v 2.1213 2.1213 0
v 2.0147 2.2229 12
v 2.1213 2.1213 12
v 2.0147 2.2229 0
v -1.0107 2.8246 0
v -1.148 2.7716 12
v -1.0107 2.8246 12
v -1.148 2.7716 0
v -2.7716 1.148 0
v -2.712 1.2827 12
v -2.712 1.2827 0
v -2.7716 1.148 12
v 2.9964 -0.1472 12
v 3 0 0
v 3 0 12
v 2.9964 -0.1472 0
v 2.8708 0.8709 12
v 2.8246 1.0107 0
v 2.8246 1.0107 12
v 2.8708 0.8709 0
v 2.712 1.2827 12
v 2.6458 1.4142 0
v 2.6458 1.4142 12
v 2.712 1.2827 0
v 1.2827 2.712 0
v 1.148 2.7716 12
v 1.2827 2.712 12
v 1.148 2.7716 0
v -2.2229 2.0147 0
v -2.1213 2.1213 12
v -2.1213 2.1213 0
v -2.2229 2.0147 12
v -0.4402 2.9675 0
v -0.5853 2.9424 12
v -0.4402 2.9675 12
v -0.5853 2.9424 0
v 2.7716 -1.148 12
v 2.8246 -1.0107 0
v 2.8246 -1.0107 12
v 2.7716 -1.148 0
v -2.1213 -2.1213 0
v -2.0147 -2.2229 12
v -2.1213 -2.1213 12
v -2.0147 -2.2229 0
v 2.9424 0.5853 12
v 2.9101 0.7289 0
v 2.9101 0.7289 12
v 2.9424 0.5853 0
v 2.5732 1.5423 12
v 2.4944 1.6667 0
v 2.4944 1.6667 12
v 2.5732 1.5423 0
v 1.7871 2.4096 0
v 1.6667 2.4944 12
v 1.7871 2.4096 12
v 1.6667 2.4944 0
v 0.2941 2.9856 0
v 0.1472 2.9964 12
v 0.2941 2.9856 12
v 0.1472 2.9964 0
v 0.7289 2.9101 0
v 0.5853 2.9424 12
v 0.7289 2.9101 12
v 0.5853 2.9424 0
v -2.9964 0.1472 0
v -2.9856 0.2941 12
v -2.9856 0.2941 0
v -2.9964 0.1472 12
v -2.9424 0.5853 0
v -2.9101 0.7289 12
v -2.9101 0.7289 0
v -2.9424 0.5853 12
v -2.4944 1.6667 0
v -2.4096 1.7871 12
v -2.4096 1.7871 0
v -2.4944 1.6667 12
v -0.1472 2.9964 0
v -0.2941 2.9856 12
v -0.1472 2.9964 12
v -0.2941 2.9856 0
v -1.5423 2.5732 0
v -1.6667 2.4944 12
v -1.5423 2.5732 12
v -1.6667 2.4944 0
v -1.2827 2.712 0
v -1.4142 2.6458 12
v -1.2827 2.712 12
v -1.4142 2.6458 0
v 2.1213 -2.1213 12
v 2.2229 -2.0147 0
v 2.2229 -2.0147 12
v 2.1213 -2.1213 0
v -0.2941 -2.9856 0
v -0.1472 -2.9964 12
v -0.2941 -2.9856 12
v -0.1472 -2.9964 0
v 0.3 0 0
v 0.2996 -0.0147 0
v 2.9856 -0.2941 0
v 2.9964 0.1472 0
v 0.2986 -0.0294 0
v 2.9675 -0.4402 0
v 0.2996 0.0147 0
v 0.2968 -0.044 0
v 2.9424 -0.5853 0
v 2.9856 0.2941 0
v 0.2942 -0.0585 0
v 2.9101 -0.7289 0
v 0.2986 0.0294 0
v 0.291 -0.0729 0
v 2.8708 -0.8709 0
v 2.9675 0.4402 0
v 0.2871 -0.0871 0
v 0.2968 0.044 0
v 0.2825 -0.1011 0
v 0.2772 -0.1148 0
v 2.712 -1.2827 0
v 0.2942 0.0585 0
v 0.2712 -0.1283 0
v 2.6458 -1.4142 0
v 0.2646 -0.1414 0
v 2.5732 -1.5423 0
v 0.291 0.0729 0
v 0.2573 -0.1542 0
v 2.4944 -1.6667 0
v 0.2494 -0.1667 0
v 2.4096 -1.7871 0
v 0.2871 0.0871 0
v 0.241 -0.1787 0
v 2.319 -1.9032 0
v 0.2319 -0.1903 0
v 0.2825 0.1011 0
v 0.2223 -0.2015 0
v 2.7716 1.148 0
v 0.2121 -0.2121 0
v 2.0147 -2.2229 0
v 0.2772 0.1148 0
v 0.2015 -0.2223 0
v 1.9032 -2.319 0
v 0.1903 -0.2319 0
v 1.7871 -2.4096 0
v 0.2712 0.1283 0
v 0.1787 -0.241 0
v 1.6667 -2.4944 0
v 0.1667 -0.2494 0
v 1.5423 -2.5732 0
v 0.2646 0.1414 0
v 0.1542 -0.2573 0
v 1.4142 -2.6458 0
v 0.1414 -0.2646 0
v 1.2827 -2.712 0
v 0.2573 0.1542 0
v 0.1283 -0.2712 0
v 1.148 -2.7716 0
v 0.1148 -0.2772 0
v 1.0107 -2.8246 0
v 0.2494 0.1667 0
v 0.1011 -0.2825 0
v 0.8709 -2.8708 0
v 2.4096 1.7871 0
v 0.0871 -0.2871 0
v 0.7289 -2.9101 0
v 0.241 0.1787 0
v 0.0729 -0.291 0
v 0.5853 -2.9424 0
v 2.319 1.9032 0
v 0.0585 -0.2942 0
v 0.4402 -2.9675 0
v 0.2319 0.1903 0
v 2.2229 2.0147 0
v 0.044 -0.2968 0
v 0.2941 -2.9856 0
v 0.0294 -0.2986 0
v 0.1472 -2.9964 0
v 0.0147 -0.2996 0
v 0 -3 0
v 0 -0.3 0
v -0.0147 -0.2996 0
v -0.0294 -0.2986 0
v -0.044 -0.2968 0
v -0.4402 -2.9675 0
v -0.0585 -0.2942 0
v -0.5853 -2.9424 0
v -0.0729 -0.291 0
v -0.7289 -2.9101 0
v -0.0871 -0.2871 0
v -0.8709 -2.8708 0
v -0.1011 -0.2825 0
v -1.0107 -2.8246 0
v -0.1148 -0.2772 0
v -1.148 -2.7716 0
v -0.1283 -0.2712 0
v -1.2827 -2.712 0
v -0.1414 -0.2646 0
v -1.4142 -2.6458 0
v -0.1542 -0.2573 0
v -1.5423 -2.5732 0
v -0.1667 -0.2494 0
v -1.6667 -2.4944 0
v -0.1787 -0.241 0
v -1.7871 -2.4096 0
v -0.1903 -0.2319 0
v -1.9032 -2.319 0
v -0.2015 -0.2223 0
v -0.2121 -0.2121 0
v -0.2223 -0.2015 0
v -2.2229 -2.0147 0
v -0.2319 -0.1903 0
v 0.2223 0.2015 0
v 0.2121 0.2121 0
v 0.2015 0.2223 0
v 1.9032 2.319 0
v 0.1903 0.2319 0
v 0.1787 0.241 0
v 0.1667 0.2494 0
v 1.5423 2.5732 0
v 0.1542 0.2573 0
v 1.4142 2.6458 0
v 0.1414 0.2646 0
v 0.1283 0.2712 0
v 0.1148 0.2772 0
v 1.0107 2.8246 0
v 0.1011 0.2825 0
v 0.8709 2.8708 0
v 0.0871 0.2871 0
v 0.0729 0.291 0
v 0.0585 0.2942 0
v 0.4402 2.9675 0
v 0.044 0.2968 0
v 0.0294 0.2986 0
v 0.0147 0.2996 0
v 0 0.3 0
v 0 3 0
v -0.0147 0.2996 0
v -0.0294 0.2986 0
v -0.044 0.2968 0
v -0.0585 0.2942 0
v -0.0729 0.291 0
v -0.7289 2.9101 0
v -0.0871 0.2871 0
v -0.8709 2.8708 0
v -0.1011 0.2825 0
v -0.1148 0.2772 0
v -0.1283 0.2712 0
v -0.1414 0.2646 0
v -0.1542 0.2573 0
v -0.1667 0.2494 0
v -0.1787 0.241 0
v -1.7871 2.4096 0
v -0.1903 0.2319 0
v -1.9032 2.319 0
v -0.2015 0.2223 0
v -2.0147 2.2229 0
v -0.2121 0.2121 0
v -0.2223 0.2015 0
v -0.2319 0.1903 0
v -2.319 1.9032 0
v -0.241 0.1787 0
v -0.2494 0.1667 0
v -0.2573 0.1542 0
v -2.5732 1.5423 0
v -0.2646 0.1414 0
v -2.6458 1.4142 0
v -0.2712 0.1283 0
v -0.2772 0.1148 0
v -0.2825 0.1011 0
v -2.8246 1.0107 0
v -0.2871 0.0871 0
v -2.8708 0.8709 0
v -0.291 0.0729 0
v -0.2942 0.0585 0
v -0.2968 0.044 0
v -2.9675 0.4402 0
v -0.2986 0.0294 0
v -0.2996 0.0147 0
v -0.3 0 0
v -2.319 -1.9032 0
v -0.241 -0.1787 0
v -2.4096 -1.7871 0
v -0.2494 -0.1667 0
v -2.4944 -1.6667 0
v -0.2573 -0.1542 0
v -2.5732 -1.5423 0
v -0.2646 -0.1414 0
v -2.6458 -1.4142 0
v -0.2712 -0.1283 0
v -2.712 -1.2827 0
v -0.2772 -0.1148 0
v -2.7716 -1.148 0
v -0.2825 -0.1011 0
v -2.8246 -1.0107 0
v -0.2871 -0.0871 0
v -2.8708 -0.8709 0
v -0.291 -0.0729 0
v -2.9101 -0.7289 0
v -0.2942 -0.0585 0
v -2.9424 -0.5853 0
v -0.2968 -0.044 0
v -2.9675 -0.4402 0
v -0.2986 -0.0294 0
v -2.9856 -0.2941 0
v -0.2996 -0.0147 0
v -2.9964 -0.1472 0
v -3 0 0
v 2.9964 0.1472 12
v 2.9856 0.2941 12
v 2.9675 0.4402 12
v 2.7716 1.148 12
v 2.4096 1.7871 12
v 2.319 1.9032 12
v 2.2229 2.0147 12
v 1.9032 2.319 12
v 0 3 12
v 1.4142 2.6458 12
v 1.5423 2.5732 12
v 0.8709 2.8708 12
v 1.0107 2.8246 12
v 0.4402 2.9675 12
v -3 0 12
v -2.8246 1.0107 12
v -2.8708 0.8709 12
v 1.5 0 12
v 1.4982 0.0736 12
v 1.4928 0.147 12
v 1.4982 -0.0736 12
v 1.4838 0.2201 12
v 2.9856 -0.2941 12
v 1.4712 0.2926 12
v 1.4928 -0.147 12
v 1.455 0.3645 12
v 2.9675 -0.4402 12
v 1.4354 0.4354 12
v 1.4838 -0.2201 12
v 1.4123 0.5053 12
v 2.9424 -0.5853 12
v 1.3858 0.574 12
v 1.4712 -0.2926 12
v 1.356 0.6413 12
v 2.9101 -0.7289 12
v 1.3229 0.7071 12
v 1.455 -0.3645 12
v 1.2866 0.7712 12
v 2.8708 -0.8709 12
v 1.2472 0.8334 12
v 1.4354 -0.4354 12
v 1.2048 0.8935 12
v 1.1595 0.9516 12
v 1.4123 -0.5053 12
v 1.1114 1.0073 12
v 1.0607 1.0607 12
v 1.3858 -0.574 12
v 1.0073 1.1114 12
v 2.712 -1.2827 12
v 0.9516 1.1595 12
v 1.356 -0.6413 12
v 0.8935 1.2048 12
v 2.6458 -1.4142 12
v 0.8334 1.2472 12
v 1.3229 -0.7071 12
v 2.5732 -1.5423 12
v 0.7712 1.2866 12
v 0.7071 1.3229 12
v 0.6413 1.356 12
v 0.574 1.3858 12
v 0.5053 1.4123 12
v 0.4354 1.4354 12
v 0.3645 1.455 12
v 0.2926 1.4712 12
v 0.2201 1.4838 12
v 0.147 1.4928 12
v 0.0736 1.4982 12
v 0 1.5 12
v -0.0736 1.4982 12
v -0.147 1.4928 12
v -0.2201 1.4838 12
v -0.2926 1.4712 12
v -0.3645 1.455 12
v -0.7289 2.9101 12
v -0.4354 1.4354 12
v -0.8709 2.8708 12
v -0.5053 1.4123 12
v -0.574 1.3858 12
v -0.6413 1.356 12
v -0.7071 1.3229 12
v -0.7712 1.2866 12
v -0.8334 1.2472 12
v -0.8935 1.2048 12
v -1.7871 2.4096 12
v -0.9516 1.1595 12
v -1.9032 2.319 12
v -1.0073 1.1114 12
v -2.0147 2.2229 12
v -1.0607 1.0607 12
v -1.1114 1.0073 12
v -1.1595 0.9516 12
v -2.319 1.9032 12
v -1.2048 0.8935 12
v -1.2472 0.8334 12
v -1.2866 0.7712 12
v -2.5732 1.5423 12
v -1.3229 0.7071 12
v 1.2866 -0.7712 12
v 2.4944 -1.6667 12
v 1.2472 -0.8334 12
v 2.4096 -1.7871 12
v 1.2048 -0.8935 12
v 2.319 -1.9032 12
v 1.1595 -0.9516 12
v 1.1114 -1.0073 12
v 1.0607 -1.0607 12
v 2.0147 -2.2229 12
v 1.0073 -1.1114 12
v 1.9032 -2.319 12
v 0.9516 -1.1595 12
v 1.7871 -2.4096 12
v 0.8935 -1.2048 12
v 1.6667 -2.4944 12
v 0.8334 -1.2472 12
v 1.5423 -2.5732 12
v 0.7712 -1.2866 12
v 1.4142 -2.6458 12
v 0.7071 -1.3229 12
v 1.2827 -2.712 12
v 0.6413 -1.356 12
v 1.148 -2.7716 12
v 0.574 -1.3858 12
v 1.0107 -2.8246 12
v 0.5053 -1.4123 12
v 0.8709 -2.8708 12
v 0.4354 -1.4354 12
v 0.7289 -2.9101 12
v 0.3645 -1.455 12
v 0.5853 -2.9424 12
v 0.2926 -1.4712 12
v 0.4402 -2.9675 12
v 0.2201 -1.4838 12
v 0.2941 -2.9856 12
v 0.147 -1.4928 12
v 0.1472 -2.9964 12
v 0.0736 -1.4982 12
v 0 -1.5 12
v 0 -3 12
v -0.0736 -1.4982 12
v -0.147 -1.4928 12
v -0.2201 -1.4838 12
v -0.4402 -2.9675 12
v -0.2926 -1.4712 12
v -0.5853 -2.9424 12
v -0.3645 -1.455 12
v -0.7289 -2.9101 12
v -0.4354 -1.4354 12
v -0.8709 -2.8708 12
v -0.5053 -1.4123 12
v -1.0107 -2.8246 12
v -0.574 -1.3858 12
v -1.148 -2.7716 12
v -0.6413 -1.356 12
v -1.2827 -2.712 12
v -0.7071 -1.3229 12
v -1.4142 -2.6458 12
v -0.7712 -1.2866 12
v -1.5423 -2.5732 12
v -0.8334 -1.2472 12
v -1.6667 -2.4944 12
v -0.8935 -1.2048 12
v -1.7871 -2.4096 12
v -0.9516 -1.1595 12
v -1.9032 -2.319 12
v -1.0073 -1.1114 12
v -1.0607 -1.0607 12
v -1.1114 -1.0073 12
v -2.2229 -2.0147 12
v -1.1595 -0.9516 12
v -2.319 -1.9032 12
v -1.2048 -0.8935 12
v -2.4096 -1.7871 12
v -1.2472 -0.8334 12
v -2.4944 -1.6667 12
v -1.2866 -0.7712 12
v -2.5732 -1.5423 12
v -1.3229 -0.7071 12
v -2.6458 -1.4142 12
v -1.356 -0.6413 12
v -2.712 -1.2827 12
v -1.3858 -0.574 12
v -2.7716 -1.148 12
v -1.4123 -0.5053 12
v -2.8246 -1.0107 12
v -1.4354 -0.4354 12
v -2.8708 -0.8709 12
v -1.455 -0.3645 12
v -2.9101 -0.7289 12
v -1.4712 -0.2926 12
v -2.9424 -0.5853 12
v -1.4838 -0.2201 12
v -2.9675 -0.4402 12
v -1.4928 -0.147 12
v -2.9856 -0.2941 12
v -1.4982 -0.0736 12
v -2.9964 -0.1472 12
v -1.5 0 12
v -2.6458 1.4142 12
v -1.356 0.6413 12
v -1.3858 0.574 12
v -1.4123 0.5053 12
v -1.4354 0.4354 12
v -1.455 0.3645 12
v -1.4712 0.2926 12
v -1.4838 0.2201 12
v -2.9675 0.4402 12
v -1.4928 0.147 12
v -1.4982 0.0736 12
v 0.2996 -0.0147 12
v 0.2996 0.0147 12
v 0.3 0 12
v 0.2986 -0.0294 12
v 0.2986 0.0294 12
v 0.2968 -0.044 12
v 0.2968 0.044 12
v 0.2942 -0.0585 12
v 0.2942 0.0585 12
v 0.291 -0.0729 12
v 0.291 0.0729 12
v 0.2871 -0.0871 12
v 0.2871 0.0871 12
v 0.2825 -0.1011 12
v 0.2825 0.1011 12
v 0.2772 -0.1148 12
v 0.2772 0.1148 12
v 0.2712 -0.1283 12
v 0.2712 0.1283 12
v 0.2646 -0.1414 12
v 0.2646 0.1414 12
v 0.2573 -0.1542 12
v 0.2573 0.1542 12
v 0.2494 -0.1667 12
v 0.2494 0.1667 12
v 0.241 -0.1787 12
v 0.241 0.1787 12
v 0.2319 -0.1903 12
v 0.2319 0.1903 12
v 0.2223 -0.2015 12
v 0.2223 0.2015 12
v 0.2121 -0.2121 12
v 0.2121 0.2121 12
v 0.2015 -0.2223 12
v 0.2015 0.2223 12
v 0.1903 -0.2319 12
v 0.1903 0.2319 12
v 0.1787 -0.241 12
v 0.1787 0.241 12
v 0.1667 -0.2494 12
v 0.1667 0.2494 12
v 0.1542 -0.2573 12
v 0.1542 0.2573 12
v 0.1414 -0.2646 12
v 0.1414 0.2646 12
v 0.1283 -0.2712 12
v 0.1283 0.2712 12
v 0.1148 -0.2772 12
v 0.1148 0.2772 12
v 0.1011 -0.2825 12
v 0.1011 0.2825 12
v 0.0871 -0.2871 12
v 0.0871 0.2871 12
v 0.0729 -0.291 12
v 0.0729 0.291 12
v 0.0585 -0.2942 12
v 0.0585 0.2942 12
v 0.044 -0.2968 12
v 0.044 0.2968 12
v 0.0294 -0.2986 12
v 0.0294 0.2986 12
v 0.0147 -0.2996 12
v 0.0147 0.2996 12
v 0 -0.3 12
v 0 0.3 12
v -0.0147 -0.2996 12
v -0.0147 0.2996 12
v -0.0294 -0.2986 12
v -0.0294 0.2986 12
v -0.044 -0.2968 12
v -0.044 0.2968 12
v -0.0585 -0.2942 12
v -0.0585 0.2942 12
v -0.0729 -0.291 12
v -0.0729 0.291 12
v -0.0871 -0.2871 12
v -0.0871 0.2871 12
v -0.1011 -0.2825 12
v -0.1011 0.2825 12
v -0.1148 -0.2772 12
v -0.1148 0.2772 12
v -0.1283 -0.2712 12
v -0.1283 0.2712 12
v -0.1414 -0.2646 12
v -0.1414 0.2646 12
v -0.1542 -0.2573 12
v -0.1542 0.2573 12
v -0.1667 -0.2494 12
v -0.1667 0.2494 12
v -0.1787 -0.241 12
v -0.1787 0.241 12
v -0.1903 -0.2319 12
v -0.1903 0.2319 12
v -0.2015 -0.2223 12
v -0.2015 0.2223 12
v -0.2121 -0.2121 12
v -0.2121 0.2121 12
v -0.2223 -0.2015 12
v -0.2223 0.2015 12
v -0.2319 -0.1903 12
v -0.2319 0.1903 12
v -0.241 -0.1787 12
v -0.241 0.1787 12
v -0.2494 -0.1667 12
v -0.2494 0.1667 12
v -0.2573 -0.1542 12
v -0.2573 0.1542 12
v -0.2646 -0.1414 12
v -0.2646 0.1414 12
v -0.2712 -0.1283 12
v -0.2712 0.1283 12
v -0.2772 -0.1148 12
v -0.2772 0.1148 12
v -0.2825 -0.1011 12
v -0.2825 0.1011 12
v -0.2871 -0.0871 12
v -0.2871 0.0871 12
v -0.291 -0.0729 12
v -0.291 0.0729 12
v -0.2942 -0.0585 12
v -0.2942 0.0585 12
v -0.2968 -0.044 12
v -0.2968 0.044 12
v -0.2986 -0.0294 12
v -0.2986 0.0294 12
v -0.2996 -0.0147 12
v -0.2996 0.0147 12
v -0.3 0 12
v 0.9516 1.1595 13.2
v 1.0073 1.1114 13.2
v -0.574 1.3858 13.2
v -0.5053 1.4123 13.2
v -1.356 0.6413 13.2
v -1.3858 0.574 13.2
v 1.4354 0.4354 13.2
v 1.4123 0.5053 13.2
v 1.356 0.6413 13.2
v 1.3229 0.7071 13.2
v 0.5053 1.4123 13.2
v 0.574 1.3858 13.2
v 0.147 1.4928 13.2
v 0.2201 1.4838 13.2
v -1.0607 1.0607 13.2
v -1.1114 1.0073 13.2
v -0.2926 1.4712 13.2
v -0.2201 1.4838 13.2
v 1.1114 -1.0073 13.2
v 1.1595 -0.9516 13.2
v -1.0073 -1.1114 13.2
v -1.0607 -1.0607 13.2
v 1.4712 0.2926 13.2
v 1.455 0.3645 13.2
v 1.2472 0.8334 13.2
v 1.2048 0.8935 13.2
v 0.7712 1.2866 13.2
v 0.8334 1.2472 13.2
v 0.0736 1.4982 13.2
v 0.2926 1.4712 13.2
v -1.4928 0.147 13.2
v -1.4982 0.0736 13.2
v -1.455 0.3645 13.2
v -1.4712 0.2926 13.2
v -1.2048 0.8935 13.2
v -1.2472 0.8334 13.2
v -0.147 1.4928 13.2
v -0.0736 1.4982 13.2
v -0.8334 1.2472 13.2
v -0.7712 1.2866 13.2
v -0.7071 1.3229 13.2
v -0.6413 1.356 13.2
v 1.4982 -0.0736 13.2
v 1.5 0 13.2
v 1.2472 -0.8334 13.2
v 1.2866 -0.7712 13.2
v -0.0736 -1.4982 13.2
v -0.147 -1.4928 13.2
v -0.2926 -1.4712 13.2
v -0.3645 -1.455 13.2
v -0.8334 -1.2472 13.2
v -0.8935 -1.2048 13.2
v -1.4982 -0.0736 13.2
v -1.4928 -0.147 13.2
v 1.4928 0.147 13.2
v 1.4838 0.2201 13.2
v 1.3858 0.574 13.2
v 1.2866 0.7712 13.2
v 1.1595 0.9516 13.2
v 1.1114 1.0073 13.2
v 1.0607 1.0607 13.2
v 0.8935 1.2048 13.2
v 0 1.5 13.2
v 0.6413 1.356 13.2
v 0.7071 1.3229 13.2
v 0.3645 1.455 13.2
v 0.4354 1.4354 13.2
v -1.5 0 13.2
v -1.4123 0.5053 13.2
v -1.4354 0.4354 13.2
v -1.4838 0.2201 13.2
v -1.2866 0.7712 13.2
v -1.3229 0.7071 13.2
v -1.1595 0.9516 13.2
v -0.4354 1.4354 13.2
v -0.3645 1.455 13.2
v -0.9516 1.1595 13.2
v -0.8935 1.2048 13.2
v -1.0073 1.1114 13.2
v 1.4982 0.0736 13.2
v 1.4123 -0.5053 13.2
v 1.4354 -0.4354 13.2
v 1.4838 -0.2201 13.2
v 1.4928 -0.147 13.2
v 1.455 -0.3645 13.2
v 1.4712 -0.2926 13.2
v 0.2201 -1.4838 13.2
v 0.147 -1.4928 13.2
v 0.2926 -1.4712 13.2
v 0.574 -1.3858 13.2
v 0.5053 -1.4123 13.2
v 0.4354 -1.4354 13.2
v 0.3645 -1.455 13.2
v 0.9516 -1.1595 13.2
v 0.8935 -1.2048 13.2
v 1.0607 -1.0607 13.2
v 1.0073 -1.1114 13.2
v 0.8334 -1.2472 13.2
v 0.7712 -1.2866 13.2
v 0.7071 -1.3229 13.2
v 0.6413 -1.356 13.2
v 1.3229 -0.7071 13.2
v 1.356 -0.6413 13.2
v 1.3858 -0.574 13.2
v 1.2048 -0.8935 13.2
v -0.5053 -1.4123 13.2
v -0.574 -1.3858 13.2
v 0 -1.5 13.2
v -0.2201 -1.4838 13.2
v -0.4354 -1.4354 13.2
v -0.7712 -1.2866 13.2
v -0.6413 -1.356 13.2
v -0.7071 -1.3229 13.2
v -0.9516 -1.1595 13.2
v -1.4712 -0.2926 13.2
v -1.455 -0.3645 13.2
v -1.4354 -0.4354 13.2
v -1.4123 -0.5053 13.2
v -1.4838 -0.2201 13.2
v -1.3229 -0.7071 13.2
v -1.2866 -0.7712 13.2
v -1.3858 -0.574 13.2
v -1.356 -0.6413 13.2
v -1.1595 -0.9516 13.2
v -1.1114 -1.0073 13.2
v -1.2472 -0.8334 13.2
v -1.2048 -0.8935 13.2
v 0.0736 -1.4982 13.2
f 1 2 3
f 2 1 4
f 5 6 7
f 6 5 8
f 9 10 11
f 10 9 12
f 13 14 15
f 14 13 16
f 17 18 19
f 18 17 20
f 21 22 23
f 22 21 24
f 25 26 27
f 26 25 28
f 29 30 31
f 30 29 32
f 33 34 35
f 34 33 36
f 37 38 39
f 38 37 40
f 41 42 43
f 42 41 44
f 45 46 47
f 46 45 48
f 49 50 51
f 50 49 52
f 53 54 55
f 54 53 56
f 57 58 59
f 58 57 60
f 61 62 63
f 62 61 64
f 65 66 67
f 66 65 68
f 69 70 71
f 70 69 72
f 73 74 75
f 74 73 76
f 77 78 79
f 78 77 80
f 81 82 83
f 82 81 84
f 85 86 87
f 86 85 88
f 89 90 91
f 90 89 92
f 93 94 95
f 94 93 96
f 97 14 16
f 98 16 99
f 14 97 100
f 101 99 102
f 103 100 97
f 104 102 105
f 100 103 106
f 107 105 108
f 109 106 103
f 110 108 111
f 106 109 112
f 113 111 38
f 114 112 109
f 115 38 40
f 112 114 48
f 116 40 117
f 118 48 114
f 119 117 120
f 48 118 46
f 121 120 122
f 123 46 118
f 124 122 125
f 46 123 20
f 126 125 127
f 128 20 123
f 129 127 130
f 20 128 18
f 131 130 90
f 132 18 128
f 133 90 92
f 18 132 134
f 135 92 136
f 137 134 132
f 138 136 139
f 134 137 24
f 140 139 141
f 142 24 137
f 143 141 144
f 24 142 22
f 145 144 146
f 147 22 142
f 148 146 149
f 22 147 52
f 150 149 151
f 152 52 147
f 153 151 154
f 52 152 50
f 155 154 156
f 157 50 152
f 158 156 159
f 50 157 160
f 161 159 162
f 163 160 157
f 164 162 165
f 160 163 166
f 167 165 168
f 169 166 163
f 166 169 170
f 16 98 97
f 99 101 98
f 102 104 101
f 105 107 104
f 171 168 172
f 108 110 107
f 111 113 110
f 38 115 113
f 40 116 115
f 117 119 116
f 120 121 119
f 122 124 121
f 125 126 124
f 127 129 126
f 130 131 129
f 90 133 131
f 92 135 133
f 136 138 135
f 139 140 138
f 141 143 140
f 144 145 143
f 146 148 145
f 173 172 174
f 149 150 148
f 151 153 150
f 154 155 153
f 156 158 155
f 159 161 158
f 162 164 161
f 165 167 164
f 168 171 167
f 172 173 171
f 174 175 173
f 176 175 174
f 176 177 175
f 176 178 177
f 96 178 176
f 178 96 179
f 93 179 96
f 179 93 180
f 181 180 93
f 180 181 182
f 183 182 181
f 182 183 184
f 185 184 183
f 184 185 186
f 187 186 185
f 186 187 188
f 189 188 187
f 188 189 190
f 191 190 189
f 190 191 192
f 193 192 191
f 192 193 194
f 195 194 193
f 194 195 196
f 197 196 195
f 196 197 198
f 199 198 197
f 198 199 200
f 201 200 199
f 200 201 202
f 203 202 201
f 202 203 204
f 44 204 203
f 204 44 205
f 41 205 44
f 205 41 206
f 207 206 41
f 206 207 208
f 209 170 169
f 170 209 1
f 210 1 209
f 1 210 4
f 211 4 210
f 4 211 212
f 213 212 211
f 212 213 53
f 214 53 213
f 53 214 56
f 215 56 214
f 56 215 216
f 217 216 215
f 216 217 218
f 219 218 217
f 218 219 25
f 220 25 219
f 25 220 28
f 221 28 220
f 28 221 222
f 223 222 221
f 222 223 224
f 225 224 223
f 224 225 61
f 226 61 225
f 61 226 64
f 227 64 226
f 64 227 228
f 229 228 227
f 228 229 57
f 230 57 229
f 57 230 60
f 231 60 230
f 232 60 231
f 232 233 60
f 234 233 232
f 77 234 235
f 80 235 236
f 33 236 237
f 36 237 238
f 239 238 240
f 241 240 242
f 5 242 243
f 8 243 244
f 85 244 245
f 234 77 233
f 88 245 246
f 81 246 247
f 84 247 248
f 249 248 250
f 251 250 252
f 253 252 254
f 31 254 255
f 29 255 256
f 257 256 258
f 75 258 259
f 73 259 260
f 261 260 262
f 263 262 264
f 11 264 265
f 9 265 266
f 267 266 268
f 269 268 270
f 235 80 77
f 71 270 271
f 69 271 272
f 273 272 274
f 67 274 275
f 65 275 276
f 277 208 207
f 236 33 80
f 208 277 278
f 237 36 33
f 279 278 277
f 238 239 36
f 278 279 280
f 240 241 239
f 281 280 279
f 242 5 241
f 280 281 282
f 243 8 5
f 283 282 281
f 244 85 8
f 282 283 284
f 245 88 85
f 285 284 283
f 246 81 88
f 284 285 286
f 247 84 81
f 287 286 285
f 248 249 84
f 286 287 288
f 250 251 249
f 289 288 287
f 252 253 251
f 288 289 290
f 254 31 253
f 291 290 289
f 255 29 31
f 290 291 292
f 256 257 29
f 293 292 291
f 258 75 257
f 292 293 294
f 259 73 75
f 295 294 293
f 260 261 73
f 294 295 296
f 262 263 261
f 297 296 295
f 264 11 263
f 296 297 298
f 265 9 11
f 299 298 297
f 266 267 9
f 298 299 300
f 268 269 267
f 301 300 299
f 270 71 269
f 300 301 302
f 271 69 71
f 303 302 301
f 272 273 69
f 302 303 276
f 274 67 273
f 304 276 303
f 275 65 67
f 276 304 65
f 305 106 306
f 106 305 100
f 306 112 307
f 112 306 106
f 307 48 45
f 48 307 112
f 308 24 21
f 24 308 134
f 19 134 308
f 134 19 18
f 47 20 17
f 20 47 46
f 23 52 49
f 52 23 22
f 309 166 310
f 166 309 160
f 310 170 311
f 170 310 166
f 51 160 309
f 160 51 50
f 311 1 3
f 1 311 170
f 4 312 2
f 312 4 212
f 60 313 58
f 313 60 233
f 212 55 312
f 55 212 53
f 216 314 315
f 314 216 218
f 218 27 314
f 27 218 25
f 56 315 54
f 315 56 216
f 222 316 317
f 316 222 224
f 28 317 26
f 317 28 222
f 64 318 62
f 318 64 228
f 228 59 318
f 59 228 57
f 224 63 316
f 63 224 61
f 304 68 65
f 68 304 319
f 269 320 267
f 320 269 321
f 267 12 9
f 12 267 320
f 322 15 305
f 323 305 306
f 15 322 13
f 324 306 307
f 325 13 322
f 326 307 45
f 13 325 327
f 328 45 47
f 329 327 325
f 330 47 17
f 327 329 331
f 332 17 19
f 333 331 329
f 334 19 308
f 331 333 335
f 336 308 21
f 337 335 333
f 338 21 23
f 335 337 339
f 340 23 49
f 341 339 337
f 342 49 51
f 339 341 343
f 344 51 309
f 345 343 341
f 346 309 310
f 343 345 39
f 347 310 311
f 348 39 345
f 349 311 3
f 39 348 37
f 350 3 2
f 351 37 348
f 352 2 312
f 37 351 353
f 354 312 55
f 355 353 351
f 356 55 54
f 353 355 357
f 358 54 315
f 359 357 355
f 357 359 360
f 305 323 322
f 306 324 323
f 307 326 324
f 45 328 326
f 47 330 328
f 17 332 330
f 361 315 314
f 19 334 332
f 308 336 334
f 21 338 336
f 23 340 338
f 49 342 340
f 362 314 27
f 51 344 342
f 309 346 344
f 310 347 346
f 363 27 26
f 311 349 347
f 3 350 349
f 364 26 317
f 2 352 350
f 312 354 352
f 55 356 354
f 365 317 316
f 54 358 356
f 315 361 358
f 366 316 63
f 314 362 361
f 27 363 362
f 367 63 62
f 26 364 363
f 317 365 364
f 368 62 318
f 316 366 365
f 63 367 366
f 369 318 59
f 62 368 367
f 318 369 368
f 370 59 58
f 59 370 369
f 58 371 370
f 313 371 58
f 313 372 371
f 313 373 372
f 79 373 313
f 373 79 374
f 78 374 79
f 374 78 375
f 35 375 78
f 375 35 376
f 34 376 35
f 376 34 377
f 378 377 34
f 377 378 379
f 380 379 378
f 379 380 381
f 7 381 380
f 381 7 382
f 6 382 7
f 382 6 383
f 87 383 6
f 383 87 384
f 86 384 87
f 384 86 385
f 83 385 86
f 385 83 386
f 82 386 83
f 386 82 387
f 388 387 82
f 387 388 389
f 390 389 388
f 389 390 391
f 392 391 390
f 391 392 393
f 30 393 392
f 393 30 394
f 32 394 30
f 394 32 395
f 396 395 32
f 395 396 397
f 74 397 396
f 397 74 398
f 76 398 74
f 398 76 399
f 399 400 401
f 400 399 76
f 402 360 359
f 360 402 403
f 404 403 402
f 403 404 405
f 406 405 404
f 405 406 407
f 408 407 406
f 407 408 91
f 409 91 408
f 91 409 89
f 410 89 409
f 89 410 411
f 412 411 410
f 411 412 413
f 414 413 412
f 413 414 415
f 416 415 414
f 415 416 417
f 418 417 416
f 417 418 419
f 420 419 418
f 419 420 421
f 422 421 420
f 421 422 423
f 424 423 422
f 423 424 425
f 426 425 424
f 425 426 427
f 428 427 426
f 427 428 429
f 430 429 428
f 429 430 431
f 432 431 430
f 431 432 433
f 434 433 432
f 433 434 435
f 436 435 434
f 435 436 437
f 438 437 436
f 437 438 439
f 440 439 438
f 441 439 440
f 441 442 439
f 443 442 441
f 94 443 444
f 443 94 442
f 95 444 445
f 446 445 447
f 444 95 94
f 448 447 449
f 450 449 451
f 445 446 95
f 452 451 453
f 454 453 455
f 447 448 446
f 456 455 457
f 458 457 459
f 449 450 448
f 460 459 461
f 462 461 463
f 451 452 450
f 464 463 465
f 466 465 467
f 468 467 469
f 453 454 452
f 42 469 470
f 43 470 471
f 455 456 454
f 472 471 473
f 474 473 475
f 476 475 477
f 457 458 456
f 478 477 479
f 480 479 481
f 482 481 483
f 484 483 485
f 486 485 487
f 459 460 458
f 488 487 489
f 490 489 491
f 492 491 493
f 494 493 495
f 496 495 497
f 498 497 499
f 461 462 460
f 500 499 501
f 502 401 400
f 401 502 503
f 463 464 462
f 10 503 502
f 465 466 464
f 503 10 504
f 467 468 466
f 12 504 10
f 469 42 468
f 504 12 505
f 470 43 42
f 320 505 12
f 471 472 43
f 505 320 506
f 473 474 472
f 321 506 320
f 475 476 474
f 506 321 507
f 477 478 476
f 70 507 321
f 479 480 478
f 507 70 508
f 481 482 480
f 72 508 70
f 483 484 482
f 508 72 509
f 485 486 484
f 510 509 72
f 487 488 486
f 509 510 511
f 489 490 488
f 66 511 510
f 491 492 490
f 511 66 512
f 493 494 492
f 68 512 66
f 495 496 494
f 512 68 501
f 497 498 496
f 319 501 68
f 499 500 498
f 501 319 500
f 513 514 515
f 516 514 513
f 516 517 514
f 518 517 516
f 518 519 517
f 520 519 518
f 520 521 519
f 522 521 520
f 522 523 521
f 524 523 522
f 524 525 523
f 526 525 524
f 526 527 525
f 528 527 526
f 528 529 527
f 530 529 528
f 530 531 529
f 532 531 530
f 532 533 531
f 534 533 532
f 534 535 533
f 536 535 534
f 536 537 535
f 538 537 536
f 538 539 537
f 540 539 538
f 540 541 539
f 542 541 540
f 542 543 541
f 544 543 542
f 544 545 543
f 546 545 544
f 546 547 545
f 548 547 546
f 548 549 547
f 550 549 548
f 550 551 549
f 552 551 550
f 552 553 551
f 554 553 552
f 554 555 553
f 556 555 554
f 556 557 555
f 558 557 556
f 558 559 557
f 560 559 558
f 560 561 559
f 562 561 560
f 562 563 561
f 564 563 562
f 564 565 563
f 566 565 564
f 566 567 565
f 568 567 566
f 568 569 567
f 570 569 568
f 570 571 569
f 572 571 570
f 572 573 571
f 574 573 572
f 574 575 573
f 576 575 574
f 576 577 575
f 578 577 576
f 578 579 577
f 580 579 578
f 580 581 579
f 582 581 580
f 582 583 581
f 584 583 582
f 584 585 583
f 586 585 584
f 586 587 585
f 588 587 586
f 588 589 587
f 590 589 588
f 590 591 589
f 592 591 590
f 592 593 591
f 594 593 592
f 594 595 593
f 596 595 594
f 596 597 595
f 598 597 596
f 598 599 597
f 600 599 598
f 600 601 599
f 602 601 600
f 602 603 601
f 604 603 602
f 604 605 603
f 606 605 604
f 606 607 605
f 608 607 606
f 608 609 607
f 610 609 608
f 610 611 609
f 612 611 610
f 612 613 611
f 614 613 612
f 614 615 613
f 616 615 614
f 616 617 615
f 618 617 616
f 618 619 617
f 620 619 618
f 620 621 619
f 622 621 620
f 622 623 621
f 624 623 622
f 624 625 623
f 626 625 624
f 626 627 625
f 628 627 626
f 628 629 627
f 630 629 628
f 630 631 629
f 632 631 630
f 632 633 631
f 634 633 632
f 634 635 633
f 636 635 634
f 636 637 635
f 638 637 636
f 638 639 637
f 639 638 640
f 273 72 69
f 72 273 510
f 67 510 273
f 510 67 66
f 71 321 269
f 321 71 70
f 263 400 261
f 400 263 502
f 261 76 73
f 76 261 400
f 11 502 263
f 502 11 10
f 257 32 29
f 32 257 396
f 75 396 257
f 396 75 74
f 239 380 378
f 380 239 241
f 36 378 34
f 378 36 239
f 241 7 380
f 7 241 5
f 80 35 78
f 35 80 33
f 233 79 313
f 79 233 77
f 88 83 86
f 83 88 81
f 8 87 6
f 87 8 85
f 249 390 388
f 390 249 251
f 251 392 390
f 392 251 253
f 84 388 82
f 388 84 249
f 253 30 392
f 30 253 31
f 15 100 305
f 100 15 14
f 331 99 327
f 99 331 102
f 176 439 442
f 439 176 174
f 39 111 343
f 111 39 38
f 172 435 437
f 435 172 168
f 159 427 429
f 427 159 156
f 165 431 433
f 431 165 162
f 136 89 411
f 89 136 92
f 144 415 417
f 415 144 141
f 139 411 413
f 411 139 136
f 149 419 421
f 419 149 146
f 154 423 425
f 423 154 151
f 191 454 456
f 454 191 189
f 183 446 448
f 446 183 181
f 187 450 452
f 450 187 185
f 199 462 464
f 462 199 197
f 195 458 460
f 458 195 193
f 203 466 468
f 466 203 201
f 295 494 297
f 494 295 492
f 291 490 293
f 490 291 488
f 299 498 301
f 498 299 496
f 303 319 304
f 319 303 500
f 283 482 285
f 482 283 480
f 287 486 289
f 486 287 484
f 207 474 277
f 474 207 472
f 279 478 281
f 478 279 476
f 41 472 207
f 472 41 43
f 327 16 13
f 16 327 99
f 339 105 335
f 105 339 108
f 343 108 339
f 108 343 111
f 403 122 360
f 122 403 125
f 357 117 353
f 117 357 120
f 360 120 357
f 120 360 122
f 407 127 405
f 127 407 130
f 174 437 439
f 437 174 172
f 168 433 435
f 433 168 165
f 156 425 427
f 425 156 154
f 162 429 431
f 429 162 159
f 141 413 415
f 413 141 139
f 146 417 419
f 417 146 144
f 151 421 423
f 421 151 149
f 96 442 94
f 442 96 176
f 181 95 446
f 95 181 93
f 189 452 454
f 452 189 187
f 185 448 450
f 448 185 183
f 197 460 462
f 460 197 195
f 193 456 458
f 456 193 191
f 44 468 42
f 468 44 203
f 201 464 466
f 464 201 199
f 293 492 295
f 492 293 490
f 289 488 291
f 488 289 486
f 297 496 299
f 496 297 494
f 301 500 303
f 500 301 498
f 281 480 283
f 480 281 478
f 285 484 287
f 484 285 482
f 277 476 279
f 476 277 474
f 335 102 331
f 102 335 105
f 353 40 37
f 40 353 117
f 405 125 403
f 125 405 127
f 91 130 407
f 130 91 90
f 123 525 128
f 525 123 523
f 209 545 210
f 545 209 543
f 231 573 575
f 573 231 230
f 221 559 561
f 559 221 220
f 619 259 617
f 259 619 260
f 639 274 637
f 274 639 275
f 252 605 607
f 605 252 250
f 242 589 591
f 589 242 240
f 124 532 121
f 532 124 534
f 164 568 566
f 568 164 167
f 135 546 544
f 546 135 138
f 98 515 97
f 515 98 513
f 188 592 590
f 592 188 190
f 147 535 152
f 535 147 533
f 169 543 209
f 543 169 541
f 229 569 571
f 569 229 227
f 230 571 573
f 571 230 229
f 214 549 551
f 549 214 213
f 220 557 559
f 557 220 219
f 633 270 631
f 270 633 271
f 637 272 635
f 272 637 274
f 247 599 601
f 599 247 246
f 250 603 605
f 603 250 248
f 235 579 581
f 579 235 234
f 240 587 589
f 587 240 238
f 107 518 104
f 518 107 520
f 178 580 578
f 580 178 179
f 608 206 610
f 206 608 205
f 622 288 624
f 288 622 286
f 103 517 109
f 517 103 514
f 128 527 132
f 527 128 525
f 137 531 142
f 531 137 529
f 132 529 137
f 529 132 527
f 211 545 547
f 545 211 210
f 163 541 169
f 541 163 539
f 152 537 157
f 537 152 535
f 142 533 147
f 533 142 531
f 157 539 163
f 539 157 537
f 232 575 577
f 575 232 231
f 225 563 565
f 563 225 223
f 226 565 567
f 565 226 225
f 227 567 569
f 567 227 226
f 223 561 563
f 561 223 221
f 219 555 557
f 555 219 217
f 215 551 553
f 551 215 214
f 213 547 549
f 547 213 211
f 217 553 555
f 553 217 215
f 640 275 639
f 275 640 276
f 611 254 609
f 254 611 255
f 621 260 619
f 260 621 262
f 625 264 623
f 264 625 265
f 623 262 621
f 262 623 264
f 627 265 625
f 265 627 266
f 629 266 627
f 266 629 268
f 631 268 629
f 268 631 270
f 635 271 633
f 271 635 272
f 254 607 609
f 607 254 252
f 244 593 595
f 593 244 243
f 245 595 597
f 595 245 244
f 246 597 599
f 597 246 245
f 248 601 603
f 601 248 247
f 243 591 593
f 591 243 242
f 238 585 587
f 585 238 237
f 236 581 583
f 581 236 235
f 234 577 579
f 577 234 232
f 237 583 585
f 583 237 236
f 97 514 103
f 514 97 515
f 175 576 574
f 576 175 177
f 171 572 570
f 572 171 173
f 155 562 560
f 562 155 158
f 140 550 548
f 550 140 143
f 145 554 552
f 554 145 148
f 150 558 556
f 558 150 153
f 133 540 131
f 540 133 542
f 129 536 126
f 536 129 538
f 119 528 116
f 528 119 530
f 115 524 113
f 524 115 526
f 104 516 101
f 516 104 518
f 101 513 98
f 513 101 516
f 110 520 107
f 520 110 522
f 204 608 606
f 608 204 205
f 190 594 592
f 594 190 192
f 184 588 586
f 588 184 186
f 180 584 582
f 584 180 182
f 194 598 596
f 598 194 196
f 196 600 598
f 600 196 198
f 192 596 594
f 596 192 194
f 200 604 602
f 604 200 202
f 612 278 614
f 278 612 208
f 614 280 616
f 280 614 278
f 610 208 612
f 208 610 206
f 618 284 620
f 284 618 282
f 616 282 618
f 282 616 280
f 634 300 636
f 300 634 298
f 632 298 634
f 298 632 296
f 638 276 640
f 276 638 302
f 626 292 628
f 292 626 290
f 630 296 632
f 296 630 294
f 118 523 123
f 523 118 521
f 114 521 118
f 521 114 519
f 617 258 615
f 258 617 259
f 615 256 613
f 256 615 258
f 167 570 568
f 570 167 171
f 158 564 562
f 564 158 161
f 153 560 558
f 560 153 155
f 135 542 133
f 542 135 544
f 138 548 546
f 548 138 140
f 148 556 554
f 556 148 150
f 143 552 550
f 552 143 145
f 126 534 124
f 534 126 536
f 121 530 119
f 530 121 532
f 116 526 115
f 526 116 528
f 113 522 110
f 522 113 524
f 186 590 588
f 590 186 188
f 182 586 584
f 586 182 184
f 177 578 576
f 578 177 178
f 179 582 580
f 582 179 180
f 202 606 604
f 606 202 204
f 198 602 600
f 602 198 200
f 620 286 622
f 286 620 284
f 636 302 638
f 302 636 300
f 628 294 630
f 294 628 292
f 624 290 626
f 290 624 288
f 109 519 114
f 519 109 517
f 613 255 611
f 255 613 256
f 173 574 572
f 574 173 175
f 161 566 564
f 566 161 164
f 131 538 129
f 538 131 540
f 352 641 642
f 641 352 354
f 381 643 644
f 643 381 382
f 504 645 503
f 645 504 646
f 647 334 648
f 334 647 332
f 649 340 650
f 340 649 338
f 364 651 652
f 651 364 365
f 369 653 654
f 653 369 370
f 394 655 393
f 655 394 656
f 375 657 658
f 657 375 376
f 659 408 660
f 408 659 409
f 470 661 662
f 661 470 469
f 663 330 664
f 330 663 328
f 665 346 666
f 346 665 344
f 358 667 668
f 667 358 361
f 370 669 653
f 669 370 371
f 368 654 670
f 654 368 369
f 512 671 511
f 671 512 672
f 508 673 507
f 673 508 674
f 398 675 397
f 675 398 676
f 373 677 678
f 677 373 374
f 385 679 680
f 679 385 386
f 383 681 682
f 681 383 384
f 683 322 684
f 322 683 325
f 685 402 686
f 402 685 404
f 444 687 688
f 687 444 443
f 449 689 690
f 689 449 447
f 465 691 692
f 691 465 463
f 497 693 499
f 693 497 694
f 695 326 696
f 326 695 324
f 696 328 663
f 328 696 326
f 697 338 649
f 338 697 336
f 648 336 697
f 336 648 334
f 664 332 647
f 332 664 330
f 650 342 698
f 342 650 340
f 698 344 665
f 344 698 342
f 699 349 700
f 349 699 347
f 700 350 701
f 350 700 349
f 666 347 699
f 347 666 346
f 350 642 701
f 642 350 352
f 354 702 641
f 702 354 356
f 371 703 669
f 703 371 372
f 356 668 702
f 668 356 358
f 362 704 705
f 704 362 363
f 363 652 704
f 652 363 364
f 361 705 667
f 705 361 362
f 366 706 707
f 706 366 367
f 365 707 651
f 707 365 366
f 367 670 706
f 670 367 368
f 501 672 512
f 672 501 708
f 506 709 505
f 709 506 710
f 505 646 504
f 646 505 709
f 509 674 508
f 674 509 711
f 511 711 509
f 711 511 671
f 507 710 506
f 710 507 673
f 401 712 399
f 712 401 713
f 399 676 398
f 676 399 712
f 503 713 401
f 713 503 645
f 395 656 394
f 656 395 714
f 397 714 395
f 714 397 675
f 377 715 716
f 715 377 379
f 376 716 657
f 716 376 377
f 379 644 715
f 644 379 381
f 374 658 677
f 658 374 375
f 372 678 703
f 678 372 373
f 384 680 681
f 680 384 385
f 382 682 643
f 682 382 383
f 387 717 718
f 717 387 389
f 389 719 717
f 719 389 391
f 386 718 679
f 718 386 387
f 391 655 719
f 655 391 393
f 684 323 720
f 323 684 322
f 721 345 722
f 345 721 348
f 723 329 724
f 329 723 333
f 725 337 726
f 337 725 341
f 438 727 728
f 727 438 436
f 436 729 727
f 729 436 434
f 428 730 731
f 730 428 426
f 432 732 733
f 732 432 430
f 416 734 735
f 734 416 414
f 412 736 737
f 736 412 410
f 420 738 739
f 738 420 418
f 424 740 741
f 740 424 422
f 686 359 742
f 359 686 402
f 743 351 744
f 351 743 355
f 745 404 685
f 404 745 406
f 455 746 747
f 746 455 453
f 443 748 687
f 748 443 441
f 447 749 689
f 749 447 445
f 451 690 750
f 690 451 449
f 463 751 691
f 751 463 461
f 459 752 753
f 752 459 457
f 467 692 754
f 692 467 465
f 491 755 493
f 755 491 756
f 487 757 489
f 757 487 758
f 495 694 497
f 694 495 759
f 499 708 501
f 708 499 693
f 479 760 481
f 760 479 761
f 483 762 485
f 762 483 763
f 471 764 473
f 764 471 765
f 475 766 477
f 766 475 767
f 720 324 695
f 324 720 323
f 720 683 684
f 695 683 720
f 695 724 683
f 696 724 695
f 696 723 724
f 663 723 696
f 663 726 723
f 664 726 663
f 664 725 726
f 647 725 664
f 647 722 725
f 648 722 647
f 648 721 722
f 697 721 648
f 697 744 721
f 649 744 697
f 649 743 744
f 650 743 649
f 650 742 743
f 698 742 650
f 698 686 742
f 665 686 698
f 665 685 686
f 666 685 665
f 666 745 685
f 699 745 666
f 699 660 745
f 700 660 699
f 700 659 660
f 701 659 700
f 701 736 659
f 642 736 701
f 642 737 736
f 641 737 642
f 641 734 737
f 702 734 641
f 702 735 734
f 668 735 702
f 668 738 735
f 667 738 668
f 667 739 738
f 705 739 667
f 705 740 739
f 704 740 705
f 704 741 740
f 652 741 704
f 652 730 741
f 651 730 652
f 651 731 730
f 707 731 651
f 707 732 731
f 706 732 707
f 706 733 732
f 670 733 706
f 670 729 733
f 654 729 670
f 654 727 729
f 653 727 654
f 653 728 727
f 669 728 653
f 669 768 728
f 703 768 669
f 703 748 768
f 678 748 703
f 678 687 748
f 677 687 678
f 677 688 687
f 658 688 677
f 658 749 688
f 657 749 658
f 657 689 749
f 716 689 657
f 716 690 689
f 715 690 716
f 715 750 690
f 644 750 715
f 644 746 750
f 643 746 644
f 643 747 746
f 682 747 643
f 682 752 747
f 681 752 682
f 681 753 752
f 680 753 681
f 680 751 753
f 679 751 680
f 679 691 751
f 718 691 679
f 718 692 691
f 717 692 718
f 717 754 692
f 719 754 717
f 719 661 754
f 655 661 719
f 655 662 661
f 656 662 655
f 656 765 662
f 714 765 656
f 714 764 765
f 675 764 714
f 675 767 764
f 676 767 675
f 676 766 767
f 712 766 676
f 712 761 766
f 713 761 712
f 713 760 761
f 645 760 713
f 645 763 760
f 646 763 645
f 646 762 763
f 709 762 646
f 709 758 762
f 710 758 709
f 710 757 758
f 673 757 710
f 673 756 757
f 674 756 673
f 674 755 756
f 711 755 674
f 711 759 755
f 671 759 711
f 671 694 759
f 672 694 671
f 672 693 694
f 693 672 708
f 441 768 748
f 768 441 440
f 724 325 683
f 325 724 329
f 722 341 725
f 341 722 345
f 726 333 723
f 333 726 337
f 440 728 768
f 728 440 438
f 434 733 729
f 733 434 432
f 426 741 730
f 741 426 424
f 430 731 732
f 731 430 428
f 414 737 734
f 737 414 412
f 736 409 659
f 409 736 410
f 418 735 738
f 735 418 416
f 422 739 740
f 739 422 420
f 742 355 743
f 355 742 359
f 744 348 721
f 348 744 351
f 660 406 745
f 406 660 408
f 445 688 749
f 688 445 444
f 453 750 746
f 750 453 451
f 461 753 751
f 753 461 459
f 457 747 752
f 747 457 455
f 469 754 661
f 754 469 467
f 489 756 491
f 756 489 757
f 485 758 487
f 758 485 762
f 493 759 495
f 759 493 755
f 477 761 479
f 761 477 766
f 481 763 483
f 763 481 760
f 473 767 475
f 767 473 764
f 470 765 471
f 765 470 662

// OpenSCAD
// Generated by SolidPython 1.1.3 on 2023-04-08 02:27:49
$fn =128;


union() {
	difference() {
		cylinder(h = 12, r = 3.0000000000);
		cylinder(h = 12, r = 0.3000000000);
	}
	translate(v = [0, 0, 12]) {
		cylinder(h = 1.2000000000, r = 1.5000000000);
	}
}
